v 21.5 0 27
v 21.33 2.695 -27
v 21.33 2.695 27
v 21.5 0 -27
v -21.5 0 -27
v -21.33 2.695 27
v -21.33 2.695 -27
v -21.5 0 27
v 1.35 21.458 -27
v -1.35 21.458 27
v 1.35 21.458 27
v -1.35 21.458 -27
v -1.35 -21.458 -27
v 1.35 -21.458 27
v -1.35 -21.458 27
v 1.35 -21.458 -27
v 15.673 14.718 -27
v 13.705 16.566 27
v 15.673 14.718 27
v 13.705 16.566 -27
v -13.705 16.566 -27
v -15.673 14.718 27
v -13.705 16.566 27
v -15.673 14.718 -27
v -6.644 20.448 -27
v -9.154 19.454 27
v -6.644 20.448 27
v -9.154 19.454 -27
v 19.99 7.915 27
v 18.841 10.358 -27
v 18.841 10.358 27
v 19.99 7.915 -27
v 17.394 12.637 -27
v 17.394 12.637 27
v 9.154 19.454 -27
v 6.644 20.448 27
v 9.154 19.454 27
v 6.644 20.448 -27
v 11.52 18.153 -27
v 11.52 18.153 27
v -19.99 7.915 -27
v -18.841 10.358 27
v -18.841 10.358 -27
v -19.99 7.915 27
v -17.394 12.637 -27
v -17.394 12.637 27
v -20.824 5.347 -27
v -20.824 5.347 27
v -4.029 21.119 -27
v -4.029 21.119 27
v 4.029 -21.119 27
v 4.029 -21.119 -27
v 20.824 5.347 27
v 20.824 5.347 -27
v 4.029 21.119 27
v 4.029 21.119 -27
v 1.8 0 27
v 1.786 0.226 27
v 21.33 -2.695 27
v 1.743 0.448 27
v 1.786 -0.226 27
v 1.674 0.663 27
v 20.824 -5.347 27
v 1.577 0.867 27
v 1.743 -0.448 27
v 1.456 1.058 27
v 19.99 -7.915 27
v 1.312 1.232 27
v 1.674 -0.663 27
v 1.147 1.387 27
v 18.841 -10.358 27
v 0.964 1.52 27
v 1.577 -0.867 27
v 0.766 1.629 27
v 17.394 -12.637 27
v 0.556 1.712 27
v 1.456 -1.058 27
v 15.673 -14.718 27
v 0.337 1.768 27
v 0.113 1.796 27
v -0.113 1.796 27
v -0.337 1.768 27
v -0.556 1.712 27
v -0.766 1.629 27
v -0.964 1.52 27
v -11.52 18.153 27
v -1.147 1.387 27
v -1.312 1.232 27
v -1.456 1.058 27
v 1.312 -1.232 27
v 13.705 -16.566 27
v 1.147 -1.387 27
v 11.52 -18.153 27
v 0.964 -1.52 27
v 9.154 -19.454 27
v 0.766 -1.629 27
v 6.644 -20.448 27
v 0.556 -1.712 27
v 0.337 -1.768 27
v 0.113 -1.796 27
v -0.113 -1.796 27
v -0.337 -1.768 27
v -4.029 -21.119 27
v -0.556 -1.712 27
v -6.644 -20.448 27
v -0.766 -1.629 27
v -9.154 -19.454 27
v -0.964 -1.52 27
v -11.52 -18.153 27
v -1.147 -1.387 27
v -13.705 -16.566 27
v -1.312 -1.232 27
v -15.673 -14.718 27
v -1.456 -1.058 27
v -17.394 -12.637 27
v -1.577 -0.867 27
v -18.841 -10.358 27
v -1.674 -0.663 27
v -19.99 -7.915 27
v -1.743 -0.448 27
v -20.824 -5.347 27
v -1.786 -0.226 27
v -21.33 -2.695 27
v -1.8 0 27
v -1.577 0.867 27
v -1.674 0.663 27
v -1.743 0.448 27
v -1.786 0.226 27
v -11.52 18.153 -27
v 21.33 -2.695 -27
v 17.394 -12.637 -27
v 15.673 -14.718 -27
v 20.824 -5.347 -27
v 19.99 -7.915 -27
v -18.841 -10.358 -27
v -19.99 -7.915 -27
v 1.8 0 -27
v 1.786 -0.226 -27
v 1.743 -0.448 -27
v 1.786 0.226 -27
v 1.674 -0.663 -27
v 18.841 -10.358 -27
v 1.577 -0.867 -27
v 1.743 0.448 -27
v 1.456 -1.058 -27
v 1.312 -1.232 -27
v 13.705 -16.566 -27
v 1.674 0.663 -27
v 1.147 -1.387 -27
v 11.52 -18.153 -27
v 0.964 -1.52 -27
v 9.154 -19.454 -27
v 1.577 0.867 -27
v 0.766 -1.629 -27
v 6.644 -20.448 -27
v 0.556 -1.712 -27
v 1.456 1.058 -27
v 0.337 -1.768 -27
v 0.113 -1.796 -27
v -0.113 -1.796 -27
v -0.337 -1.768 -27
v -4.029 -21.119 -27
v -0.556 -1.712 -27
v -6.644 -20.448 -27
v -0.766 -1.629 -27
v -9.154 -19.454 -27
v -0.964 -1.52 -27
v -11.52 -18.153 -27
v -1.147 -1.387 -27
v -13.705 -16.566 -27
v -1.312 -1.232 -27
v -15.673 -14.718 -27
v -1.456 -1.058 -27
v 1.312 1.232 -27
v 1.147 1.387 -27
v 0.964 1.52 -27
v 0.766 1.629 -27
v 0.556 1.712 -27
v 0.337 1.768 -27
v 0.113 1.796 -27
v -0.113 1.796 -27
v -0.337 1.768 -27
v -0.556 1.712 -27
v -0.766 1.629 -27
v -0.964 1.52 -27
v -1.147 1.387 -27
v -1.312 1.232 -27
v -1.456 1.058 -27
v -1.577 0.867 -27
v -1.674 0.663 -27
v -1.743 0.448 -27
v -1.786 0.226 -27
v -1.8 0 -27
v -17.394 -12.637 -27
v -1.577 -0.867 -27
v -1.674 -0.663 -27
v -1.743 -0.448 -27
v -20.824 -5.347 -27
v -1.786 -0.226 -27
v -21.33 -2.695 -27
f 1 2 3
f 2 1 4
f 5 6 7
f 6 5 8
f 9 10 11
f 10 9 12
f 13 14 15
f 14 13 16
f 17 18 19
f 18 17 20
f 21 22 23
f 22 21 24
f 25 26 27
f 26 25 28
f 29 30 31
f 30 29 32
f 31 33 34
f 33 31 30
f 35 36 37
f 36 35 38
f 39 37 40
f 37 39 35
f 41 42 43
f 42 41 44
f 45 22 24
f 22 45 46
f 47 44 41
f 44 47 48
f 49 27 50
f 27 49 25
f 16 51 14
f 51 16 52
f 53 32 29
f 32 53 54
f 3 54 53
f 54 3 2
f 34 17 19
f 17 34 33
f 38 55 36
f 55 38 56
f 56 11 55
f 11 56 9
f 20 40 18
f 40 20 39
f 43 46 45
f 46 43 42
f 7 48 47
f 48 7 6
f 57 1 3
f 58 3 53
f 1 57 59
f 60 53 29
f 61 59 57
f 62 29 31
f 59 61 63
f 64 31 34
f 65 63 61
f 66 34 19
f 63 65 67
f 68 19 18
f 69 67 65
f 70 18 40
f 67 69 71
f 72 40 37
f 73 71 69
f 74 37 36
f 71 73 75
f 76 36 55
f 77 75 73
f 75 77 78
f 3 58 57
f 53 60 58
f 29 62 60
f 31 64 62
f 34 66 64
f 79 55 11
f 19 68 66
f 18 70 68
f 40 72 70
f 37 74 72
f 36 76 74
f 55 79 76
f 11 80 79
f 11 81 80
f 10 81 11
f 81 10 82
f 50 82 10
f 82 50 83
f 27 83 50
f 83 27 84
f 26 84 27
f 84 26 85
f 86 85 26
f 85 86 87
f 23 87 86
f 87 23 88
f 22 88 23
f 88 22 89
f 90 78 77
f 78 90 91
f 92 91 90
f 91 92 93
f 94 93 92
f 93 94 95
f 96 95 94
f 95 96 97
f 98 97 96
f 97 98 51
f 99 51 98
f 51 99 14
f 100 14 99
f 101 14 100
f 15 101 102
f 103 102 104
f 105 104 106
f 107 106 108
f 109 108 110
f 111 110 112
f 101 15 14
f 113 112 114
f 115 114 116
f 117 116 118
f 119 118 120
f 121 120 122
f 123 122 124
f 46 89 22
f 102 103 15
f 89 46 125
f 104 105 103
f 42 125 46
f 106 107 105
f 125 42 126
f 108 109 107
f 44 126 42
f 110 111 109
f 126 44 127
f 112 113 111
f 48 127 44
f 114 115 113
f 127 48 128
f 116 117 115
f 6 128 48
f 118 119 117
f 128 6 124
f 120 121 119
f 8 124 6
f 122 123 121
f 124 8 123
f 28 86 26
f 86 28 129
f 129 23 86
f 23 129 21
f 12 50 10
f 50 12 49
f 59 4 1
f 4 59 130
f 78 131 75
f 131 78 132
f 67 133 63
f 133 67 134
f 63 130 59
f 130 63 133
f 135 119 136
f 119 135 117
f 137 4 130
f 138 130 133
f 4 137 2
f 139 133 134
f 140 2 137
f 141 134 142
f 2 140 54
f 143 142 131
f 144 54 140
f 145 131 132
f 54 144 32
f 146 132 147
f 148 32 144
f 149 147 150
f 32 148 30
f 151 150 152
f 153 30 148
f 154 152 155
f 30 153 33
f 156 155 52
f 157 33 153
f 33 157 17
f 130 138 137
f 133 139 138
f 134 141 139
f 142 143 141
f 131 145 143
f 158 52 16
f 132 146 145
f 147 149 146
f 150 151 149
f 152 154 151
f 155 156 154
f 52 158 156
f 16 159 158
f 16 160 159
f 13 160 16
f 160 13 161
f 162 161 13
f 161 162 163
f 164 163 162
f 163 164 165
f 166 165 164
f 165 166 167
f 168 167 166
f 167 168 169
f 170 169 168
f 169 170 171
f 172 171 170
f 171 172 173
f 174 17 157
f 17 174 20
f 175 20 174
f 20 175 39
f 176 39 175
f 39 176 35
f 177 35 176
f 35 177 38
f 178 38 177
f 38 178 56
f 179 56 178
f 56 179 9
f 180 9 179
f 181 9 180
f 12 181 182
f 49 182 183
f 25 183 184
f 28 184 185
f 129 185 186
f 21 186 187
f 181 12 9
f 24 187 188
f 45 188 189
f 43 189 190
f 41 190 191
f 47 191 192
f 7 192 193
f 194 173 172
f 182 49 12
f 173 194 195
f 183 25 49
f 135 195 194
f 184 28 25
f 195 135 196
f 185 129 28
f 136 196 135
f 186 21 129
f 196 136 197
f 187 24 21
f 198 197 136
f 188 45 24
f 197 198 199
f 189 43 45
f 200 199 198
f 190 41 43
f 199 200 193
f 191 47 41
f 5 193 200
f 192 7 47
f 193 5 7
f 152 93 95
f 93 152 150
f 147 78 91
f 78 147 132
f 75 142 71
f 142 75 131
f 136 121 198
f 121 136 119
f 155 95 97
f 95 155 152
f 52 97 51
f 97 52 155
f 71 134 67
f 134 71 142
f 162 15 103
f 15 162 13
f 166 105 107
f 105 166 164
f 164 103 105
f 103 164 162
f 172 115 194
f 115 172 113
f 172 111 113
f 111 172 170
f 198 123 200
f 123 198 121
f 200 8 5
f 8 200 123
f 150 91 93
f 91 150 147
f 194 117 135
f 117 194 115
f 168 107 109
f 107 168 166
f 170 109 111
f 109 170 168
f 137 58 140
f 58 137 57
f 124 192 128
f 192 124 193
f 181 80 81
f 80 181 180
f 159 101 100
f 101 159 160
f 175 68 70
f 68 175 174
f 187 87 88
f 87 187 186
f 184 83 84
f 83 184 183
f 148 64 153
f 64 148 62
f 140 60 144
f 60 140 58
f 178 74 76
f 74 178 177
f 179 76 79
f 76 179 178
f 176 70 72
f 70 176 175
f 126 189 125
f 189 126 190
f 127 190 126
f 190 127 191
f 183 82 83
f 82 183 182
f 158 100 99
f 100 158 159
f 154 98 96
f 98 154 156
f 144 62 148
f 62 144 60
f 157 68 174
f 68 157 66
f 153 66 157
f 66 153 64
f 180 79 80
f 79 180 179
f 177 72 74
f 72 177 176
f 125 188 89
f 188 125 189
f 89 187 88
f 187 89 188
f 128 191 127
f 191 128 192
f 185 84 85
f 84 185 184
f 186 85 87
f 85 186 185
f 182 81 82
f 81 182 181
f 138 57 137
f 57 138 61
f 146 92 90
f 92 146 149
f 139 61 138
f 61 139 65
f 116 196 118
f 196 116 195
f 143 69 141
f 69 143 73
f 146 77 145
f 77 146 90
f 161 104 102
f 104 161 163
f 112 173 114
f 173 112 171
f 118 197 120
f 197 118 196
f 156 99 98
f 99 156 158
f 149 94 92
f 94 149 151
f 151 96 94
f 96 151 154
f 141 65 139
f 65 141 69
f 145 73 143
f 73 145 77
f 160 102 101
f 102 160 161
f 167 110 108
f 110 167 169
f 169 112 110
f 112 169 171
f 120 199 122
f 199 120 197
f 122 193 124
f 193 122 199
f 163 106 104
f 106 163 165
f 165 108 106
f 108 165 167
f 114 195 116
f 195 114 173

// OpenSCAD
$fn = 50;


difference() {
	union() {
		translate(v = [0, 0, -27.0000000000]) {
			cylinder(h = 54, r = 21.5000000000);
		}
	}
	union() {
		translate(v = [0, 0, -100.0000000000]) {
			cylinder(h = 200, r = 1.8000000000);
		}
	}
}
